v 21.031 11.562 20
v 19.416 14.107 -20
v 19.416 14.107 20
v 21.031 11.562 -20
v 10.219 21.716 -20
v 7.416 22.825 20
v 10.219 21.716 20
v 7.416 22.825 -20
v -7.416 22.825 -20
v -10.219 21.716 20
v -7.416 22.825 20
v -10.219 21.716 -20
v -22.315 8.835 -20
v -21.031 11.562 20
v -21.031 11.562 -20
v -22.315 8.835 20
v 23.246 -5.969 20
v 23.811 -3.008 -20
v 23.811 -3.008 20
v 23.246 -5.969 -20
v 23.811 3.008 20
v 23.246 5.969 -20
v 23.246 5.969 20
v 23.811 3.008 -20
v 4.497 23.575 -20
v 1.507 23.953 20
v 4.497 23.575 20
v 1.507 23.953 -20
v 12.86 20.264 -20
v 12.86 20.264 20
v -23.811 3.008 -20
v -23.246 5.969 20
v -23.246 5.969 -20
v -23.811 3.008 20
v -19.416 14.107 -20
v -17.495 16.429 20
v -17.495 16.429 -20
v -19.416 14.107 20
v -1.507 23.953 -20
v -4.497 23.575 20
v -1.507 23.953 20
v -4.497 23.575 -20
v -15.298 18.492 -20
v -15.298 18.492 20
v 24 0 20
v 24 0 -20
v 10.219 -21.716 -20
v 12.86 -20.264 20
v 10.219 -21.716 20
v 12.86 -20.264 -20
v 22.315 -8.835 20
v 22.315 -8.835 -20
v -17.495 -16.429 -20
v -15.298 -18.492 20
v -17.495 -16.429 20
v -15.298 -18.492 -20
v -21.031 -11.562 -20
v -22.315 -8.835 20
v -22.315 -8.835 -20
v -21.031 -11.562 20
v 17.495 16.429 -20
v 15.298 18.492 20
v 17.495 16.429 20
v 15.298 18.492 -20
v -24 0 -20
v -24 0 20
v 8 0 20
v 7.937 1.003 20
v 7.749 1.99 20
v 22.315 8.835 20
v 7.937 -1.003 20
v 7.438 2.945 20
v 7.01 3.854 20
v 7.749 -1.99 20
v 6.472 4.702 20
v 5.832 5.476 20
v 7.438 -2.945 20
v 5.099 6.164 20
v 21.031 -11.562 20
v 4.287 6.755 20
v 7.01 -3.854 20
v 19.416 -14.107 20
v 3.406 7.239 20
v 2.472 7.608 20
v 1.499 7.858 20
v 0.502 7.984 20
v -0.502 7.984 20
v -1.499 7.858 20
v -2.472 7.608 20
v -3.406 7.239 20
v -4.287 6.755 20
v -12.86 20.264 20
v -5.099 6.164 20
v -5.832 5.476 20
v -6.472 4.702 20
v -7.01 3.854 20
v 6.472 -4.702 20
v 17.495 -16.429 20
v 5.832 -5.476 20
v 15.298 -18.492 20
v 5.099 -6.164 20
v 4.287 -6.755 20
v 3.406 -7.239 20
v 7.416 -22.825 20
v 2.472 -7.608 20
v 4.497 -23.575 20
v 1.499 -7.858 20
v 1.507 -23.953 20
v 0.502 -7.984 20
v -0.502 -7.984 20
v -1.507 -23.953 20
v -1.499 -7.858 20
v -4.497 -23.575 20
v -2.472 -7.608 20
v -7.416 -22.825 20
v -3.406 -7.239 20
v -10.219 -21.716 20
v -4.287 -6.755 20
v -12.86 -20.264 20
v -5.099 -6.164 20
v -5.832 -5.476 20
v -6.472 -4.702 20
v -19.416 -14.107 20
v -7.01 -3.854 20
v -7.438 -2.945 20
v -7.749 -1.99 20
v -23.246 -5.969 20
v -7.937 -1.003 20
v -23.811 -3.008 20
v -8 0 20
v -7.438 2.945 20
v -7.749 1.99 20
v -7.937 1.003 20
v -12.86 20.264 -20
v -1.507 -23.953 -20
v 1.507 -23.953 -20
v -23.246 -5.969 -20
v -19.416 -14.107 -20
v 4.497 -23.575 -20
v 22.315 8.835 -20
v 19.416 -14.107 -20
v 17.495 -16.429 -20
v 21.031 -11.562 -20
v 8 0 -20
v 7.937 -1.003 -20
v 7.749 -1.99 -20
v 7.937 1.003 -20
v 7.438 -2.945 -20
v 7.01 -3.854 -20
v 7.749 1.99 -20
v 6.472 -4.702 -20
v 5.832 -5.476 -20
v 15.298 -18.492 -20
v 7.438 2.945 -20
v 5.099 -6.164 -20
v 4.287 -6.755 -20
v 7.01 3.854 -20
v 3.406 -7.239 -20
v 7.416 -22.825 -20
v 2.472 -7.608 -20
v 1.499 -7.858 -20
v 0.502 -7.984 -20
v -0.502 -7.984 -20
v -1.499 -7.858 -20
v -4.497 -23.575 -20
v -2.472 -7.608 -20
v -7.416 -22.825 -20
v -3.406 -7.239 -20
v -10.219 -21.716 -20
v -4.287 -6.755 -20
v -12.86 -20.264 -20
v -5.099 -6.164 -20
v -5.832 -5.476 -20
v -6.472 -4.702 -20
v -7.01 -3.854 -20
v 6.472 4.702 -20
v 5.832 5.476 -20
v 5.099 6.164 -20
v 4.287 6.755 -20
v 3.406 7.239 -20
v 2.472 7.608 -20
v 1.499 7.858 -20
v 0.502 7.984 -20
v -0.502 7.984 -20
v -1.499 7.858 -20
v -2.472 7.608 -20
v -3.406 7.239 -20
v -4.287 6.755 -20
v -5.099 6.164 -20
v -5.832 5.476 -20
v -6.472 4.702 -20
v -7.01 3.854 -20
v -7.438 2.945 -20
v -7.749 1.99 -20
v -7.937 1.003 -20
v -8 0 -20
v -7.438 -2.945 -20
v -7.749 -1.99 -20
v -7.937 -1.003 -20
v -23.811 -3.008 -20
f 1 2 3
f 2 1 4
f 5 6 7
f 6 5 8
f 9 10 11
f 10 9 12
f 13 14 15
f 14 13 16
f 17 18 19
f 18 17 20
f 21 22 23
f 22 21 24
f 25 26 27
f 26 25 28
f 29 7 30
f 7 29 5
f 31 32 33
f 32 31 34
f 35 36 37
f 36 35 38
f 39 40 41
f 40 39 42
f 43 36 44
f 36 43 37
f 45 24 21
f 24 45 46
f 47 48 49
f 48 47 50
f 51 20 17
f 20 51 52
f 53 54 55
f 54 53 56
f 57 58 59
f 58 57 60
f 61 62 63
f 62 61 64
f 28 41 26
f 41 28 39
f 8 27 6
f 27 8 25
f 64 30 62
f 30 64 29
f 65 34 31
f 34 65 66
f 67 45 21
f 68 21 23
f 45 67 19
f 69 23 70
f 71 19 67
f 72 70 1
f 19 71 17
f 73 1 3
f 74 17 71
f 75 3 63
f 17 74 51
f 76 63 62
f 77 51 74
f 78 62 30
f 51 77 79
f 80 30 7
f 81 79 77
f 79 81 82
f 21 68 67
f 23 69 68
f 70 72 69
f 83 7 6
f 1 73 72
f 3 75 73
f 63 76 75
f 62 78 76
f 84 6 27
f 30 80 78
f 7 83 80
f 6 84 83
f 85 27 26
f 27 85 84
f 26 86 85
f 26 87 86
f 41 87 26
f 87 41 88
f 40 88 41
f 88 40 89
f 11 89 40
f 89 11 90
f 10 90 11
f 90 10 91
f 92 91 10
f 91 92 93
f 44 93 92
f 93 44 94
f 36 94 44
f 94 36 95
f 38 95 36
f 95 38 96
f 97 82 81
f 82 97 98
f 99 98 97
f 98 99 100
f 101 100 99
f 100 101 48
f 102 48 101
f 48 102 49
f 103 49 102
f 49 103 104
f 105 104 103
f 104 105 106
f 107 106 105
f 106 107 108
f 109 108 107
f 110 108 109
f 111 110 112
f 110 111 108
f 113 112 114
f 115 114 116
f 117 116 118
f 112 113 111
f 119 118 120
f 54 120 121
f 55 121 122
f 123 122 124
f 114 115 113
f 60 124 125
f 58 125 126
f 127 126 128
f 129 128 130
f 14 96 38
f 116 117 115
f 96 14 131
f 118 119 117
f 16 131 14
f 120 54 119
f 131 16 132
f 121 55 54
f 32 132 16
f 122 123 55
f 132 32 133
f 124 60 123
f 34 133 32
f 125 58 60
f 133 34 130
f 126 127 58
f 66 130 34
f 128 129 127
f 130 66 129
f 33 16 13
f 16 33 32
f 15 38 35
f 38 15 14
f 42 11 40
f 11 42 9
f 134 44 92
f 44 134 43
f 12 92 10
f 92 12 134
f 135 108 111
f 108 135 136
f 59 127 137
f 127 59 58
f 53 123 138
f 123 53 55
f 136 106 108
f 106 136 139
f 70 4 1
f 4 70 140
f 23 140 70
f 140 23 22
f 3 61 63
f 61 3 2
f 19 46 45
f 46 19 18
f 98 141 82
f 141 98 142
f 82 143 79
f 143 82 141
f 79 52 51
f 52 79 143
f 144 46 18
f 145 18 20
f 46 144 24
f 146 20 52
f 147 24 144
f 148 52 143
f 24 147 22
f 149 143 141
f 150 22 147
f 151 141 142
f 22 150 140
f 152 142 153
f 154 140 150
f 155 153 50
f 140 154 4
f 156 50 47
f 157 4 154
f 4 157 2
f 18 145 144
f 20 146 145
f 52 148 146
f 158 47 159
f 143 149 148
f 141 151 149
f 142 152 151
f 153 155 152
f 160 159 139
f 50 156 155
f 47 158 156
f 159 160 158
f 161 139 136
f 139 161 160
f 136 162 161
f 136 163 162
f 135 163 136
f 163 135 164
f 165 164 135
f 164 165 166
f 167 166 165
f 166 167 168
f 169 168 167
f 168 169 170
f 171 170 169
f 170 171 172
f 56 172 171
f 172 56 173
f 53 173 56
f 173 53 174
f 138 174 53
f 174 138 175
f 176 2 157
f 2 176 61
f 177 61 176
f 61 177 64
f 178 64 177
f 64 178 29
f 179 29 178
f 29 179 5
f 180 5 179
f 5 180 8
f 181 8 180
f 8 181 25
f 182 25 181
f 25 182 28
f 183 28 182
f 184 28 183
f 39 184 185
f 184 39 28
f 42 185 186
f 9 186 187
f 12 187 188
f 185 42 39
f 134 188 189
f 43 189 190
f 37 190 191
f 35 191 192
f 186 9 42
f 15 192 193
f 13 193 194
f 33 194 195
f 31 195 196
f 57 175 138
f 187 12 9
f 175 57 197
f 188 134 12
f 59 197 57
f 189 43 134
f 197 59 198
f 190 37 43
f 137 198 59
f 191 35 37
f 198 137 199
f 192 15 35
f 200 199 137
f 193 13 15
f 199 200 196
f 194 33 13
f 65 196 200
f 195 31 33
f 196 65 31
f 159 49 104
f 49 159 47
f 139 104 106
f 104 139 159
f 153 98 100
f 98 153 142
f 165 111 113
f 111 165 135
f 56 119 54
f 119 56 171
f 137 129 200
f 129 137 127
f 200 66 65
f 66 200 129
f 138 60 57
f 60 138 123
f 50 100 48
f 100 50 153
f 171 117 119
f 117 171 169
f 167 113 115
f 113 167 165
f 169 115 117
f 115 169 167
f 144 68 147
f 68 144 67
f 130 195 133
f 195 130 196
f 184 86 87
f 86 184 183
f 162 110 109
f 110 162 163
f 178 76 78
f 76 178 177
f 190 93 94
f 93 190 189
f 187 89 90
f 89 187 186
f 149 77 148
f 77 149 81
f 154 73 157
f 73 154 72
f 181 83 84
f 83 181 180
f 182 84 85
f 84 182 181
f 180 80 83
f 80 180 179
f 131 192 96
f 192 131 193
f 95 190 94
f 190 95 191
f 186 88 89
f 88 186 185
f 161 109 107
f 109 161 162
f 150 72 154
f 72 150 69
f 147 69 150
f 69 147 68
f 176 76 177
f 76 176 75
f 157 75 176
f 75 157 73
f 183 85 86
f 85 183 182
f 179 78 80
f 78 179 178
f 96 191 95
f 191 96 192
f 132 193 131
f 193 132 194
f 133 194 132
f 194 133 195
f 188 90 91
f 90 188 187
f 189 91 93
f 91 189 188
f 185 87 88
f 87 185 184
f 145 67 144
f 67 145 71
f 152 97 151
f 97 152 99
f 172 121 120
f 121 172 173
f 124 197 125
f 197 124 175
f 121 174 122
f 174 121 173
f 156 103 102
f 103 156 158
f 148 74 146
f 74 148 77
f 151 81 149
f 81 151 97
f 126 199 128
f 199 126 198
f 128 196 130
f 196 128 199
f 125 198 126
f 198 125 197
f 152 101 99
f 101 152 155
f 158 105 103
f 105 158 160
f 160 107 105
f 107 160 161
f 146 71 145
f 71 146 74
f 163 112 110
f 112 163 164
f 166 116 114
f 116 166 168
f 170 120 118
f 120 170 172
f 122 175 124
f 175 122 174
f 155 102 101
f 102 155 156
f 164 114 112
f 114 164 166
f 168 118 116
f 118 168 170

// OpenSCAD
$fn = 50;


difference() {
	union() {
		translate(v = [0, 0, -20.0000000000]) {
			cylinder(h = 40, r = 24.0000000000);
		}
	}
	union() {
		translate(v = [0, 0, -100.0000000000]) {
			cylinder(h = 200, r = 8);
		}
	}
}
